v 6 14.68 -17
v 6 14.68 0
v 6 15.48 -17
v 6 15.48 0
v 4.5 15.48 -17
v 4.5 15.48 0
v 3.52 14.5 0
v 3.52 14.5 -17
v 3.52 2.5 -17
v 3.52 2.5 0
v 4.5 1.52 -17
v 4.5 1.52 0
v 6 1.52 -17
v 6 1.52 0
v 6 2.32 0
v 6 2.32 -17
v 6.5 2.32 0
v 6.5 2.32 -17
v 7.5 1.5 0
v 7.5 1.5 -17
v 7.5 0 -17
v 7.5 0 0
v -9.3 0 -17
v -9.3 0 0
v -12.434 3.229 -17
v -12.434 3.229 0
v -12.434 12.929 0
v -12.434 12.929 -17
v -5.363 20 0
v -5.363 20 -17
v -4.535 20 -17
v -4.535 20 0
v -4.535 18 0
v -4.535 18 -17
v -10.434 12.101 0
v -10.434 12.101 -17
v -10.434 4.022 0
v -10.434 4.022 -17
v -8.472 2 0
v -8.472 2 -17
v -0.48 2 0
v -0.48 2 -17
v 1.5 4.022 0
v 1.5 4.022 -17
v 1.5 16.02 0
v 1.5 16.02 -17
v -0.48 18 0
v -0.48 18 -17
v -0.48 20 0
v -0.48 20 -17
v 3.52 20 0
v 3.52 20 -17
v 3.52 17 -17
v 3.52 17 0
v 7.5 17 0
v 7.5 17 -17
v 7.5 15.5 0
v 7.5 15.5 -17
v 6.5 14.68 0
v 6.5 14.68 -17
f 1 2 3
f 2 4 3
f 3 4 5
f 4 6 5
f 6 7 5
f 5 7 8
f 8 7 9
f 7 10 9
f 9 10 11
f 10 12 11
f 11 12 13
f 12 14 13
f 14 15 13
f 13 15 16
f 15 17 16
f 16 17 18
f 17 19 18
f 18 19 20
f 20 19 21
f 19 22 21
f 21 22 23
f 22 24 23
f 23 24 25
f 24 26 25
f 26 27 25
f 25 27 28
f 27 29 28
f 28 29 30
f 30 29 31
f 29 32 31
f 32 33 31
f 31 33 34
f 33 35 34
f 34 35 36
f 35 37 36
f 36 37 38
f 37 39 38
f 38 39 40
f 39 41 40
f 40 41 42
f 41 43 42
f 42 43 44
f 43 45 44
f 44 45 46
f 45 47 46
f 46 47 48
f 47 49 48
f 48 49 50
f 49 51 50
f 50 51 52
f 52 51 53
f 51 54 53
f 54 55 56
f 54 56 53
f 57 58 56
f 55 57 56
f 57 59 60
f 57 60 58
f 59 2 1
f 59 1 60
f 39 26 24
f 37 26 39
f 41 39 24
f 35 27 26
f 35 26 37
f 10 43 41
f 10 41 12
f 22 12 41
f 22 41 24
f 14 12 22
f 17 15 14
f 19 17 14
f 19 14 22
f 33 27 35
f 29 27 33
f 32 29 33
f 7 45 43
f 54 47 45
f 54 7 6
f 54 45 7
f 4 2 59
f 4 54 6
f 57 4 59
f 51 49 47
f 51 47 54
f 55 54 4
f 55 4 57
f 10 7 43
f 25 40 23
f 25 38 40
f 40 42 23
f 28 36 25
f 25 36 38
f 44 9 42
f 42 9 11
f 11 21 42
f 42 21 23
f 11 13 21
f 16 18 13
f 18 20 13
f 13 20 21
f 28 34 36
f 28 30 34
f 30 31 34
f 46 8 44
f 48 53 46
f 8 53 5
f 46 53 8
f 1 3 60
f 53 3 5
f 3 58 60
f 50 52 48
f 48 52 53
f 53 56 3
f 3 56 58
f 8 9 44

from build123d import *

# Parameters (mm, degrees)
PAD_DEPTH = 17


with BuildPart() as part:
    # Sketch (on XY_Plane of Origin) → Pad (new body)
    with BuildSketch(Plane.XY):
        Polygon((6, 1.52), (6, 2.32), (6.5, 2.32), (7.5, 1.5), (7.5, 0), (-9.3, 0), (-12.434326, 3.228932), (-12.434326, 12.928932), (-5.363258, 20), (-4.534831, 20), (-4.534831, 18), (-10.434326, 12.100505), (-10.434326, 4.021537), (-8.472019, 2), (-0.48, 2), (1.5, 4.021537), (1.5, 16.02), (-0.48, 18), (-0.48, 20), (3.52, 20), (3.52, 17), (7.5, 17), (7.5, 15.5), (6.5, 14.68), (6, 14.68), (6, 15.48), (4.5, 15.48), (3.52, 14.5), (3.52, 2.5), (4.5, 1.52), align=None)
    extrude(amount=-PAD_DEPTH)


solid = part.part
